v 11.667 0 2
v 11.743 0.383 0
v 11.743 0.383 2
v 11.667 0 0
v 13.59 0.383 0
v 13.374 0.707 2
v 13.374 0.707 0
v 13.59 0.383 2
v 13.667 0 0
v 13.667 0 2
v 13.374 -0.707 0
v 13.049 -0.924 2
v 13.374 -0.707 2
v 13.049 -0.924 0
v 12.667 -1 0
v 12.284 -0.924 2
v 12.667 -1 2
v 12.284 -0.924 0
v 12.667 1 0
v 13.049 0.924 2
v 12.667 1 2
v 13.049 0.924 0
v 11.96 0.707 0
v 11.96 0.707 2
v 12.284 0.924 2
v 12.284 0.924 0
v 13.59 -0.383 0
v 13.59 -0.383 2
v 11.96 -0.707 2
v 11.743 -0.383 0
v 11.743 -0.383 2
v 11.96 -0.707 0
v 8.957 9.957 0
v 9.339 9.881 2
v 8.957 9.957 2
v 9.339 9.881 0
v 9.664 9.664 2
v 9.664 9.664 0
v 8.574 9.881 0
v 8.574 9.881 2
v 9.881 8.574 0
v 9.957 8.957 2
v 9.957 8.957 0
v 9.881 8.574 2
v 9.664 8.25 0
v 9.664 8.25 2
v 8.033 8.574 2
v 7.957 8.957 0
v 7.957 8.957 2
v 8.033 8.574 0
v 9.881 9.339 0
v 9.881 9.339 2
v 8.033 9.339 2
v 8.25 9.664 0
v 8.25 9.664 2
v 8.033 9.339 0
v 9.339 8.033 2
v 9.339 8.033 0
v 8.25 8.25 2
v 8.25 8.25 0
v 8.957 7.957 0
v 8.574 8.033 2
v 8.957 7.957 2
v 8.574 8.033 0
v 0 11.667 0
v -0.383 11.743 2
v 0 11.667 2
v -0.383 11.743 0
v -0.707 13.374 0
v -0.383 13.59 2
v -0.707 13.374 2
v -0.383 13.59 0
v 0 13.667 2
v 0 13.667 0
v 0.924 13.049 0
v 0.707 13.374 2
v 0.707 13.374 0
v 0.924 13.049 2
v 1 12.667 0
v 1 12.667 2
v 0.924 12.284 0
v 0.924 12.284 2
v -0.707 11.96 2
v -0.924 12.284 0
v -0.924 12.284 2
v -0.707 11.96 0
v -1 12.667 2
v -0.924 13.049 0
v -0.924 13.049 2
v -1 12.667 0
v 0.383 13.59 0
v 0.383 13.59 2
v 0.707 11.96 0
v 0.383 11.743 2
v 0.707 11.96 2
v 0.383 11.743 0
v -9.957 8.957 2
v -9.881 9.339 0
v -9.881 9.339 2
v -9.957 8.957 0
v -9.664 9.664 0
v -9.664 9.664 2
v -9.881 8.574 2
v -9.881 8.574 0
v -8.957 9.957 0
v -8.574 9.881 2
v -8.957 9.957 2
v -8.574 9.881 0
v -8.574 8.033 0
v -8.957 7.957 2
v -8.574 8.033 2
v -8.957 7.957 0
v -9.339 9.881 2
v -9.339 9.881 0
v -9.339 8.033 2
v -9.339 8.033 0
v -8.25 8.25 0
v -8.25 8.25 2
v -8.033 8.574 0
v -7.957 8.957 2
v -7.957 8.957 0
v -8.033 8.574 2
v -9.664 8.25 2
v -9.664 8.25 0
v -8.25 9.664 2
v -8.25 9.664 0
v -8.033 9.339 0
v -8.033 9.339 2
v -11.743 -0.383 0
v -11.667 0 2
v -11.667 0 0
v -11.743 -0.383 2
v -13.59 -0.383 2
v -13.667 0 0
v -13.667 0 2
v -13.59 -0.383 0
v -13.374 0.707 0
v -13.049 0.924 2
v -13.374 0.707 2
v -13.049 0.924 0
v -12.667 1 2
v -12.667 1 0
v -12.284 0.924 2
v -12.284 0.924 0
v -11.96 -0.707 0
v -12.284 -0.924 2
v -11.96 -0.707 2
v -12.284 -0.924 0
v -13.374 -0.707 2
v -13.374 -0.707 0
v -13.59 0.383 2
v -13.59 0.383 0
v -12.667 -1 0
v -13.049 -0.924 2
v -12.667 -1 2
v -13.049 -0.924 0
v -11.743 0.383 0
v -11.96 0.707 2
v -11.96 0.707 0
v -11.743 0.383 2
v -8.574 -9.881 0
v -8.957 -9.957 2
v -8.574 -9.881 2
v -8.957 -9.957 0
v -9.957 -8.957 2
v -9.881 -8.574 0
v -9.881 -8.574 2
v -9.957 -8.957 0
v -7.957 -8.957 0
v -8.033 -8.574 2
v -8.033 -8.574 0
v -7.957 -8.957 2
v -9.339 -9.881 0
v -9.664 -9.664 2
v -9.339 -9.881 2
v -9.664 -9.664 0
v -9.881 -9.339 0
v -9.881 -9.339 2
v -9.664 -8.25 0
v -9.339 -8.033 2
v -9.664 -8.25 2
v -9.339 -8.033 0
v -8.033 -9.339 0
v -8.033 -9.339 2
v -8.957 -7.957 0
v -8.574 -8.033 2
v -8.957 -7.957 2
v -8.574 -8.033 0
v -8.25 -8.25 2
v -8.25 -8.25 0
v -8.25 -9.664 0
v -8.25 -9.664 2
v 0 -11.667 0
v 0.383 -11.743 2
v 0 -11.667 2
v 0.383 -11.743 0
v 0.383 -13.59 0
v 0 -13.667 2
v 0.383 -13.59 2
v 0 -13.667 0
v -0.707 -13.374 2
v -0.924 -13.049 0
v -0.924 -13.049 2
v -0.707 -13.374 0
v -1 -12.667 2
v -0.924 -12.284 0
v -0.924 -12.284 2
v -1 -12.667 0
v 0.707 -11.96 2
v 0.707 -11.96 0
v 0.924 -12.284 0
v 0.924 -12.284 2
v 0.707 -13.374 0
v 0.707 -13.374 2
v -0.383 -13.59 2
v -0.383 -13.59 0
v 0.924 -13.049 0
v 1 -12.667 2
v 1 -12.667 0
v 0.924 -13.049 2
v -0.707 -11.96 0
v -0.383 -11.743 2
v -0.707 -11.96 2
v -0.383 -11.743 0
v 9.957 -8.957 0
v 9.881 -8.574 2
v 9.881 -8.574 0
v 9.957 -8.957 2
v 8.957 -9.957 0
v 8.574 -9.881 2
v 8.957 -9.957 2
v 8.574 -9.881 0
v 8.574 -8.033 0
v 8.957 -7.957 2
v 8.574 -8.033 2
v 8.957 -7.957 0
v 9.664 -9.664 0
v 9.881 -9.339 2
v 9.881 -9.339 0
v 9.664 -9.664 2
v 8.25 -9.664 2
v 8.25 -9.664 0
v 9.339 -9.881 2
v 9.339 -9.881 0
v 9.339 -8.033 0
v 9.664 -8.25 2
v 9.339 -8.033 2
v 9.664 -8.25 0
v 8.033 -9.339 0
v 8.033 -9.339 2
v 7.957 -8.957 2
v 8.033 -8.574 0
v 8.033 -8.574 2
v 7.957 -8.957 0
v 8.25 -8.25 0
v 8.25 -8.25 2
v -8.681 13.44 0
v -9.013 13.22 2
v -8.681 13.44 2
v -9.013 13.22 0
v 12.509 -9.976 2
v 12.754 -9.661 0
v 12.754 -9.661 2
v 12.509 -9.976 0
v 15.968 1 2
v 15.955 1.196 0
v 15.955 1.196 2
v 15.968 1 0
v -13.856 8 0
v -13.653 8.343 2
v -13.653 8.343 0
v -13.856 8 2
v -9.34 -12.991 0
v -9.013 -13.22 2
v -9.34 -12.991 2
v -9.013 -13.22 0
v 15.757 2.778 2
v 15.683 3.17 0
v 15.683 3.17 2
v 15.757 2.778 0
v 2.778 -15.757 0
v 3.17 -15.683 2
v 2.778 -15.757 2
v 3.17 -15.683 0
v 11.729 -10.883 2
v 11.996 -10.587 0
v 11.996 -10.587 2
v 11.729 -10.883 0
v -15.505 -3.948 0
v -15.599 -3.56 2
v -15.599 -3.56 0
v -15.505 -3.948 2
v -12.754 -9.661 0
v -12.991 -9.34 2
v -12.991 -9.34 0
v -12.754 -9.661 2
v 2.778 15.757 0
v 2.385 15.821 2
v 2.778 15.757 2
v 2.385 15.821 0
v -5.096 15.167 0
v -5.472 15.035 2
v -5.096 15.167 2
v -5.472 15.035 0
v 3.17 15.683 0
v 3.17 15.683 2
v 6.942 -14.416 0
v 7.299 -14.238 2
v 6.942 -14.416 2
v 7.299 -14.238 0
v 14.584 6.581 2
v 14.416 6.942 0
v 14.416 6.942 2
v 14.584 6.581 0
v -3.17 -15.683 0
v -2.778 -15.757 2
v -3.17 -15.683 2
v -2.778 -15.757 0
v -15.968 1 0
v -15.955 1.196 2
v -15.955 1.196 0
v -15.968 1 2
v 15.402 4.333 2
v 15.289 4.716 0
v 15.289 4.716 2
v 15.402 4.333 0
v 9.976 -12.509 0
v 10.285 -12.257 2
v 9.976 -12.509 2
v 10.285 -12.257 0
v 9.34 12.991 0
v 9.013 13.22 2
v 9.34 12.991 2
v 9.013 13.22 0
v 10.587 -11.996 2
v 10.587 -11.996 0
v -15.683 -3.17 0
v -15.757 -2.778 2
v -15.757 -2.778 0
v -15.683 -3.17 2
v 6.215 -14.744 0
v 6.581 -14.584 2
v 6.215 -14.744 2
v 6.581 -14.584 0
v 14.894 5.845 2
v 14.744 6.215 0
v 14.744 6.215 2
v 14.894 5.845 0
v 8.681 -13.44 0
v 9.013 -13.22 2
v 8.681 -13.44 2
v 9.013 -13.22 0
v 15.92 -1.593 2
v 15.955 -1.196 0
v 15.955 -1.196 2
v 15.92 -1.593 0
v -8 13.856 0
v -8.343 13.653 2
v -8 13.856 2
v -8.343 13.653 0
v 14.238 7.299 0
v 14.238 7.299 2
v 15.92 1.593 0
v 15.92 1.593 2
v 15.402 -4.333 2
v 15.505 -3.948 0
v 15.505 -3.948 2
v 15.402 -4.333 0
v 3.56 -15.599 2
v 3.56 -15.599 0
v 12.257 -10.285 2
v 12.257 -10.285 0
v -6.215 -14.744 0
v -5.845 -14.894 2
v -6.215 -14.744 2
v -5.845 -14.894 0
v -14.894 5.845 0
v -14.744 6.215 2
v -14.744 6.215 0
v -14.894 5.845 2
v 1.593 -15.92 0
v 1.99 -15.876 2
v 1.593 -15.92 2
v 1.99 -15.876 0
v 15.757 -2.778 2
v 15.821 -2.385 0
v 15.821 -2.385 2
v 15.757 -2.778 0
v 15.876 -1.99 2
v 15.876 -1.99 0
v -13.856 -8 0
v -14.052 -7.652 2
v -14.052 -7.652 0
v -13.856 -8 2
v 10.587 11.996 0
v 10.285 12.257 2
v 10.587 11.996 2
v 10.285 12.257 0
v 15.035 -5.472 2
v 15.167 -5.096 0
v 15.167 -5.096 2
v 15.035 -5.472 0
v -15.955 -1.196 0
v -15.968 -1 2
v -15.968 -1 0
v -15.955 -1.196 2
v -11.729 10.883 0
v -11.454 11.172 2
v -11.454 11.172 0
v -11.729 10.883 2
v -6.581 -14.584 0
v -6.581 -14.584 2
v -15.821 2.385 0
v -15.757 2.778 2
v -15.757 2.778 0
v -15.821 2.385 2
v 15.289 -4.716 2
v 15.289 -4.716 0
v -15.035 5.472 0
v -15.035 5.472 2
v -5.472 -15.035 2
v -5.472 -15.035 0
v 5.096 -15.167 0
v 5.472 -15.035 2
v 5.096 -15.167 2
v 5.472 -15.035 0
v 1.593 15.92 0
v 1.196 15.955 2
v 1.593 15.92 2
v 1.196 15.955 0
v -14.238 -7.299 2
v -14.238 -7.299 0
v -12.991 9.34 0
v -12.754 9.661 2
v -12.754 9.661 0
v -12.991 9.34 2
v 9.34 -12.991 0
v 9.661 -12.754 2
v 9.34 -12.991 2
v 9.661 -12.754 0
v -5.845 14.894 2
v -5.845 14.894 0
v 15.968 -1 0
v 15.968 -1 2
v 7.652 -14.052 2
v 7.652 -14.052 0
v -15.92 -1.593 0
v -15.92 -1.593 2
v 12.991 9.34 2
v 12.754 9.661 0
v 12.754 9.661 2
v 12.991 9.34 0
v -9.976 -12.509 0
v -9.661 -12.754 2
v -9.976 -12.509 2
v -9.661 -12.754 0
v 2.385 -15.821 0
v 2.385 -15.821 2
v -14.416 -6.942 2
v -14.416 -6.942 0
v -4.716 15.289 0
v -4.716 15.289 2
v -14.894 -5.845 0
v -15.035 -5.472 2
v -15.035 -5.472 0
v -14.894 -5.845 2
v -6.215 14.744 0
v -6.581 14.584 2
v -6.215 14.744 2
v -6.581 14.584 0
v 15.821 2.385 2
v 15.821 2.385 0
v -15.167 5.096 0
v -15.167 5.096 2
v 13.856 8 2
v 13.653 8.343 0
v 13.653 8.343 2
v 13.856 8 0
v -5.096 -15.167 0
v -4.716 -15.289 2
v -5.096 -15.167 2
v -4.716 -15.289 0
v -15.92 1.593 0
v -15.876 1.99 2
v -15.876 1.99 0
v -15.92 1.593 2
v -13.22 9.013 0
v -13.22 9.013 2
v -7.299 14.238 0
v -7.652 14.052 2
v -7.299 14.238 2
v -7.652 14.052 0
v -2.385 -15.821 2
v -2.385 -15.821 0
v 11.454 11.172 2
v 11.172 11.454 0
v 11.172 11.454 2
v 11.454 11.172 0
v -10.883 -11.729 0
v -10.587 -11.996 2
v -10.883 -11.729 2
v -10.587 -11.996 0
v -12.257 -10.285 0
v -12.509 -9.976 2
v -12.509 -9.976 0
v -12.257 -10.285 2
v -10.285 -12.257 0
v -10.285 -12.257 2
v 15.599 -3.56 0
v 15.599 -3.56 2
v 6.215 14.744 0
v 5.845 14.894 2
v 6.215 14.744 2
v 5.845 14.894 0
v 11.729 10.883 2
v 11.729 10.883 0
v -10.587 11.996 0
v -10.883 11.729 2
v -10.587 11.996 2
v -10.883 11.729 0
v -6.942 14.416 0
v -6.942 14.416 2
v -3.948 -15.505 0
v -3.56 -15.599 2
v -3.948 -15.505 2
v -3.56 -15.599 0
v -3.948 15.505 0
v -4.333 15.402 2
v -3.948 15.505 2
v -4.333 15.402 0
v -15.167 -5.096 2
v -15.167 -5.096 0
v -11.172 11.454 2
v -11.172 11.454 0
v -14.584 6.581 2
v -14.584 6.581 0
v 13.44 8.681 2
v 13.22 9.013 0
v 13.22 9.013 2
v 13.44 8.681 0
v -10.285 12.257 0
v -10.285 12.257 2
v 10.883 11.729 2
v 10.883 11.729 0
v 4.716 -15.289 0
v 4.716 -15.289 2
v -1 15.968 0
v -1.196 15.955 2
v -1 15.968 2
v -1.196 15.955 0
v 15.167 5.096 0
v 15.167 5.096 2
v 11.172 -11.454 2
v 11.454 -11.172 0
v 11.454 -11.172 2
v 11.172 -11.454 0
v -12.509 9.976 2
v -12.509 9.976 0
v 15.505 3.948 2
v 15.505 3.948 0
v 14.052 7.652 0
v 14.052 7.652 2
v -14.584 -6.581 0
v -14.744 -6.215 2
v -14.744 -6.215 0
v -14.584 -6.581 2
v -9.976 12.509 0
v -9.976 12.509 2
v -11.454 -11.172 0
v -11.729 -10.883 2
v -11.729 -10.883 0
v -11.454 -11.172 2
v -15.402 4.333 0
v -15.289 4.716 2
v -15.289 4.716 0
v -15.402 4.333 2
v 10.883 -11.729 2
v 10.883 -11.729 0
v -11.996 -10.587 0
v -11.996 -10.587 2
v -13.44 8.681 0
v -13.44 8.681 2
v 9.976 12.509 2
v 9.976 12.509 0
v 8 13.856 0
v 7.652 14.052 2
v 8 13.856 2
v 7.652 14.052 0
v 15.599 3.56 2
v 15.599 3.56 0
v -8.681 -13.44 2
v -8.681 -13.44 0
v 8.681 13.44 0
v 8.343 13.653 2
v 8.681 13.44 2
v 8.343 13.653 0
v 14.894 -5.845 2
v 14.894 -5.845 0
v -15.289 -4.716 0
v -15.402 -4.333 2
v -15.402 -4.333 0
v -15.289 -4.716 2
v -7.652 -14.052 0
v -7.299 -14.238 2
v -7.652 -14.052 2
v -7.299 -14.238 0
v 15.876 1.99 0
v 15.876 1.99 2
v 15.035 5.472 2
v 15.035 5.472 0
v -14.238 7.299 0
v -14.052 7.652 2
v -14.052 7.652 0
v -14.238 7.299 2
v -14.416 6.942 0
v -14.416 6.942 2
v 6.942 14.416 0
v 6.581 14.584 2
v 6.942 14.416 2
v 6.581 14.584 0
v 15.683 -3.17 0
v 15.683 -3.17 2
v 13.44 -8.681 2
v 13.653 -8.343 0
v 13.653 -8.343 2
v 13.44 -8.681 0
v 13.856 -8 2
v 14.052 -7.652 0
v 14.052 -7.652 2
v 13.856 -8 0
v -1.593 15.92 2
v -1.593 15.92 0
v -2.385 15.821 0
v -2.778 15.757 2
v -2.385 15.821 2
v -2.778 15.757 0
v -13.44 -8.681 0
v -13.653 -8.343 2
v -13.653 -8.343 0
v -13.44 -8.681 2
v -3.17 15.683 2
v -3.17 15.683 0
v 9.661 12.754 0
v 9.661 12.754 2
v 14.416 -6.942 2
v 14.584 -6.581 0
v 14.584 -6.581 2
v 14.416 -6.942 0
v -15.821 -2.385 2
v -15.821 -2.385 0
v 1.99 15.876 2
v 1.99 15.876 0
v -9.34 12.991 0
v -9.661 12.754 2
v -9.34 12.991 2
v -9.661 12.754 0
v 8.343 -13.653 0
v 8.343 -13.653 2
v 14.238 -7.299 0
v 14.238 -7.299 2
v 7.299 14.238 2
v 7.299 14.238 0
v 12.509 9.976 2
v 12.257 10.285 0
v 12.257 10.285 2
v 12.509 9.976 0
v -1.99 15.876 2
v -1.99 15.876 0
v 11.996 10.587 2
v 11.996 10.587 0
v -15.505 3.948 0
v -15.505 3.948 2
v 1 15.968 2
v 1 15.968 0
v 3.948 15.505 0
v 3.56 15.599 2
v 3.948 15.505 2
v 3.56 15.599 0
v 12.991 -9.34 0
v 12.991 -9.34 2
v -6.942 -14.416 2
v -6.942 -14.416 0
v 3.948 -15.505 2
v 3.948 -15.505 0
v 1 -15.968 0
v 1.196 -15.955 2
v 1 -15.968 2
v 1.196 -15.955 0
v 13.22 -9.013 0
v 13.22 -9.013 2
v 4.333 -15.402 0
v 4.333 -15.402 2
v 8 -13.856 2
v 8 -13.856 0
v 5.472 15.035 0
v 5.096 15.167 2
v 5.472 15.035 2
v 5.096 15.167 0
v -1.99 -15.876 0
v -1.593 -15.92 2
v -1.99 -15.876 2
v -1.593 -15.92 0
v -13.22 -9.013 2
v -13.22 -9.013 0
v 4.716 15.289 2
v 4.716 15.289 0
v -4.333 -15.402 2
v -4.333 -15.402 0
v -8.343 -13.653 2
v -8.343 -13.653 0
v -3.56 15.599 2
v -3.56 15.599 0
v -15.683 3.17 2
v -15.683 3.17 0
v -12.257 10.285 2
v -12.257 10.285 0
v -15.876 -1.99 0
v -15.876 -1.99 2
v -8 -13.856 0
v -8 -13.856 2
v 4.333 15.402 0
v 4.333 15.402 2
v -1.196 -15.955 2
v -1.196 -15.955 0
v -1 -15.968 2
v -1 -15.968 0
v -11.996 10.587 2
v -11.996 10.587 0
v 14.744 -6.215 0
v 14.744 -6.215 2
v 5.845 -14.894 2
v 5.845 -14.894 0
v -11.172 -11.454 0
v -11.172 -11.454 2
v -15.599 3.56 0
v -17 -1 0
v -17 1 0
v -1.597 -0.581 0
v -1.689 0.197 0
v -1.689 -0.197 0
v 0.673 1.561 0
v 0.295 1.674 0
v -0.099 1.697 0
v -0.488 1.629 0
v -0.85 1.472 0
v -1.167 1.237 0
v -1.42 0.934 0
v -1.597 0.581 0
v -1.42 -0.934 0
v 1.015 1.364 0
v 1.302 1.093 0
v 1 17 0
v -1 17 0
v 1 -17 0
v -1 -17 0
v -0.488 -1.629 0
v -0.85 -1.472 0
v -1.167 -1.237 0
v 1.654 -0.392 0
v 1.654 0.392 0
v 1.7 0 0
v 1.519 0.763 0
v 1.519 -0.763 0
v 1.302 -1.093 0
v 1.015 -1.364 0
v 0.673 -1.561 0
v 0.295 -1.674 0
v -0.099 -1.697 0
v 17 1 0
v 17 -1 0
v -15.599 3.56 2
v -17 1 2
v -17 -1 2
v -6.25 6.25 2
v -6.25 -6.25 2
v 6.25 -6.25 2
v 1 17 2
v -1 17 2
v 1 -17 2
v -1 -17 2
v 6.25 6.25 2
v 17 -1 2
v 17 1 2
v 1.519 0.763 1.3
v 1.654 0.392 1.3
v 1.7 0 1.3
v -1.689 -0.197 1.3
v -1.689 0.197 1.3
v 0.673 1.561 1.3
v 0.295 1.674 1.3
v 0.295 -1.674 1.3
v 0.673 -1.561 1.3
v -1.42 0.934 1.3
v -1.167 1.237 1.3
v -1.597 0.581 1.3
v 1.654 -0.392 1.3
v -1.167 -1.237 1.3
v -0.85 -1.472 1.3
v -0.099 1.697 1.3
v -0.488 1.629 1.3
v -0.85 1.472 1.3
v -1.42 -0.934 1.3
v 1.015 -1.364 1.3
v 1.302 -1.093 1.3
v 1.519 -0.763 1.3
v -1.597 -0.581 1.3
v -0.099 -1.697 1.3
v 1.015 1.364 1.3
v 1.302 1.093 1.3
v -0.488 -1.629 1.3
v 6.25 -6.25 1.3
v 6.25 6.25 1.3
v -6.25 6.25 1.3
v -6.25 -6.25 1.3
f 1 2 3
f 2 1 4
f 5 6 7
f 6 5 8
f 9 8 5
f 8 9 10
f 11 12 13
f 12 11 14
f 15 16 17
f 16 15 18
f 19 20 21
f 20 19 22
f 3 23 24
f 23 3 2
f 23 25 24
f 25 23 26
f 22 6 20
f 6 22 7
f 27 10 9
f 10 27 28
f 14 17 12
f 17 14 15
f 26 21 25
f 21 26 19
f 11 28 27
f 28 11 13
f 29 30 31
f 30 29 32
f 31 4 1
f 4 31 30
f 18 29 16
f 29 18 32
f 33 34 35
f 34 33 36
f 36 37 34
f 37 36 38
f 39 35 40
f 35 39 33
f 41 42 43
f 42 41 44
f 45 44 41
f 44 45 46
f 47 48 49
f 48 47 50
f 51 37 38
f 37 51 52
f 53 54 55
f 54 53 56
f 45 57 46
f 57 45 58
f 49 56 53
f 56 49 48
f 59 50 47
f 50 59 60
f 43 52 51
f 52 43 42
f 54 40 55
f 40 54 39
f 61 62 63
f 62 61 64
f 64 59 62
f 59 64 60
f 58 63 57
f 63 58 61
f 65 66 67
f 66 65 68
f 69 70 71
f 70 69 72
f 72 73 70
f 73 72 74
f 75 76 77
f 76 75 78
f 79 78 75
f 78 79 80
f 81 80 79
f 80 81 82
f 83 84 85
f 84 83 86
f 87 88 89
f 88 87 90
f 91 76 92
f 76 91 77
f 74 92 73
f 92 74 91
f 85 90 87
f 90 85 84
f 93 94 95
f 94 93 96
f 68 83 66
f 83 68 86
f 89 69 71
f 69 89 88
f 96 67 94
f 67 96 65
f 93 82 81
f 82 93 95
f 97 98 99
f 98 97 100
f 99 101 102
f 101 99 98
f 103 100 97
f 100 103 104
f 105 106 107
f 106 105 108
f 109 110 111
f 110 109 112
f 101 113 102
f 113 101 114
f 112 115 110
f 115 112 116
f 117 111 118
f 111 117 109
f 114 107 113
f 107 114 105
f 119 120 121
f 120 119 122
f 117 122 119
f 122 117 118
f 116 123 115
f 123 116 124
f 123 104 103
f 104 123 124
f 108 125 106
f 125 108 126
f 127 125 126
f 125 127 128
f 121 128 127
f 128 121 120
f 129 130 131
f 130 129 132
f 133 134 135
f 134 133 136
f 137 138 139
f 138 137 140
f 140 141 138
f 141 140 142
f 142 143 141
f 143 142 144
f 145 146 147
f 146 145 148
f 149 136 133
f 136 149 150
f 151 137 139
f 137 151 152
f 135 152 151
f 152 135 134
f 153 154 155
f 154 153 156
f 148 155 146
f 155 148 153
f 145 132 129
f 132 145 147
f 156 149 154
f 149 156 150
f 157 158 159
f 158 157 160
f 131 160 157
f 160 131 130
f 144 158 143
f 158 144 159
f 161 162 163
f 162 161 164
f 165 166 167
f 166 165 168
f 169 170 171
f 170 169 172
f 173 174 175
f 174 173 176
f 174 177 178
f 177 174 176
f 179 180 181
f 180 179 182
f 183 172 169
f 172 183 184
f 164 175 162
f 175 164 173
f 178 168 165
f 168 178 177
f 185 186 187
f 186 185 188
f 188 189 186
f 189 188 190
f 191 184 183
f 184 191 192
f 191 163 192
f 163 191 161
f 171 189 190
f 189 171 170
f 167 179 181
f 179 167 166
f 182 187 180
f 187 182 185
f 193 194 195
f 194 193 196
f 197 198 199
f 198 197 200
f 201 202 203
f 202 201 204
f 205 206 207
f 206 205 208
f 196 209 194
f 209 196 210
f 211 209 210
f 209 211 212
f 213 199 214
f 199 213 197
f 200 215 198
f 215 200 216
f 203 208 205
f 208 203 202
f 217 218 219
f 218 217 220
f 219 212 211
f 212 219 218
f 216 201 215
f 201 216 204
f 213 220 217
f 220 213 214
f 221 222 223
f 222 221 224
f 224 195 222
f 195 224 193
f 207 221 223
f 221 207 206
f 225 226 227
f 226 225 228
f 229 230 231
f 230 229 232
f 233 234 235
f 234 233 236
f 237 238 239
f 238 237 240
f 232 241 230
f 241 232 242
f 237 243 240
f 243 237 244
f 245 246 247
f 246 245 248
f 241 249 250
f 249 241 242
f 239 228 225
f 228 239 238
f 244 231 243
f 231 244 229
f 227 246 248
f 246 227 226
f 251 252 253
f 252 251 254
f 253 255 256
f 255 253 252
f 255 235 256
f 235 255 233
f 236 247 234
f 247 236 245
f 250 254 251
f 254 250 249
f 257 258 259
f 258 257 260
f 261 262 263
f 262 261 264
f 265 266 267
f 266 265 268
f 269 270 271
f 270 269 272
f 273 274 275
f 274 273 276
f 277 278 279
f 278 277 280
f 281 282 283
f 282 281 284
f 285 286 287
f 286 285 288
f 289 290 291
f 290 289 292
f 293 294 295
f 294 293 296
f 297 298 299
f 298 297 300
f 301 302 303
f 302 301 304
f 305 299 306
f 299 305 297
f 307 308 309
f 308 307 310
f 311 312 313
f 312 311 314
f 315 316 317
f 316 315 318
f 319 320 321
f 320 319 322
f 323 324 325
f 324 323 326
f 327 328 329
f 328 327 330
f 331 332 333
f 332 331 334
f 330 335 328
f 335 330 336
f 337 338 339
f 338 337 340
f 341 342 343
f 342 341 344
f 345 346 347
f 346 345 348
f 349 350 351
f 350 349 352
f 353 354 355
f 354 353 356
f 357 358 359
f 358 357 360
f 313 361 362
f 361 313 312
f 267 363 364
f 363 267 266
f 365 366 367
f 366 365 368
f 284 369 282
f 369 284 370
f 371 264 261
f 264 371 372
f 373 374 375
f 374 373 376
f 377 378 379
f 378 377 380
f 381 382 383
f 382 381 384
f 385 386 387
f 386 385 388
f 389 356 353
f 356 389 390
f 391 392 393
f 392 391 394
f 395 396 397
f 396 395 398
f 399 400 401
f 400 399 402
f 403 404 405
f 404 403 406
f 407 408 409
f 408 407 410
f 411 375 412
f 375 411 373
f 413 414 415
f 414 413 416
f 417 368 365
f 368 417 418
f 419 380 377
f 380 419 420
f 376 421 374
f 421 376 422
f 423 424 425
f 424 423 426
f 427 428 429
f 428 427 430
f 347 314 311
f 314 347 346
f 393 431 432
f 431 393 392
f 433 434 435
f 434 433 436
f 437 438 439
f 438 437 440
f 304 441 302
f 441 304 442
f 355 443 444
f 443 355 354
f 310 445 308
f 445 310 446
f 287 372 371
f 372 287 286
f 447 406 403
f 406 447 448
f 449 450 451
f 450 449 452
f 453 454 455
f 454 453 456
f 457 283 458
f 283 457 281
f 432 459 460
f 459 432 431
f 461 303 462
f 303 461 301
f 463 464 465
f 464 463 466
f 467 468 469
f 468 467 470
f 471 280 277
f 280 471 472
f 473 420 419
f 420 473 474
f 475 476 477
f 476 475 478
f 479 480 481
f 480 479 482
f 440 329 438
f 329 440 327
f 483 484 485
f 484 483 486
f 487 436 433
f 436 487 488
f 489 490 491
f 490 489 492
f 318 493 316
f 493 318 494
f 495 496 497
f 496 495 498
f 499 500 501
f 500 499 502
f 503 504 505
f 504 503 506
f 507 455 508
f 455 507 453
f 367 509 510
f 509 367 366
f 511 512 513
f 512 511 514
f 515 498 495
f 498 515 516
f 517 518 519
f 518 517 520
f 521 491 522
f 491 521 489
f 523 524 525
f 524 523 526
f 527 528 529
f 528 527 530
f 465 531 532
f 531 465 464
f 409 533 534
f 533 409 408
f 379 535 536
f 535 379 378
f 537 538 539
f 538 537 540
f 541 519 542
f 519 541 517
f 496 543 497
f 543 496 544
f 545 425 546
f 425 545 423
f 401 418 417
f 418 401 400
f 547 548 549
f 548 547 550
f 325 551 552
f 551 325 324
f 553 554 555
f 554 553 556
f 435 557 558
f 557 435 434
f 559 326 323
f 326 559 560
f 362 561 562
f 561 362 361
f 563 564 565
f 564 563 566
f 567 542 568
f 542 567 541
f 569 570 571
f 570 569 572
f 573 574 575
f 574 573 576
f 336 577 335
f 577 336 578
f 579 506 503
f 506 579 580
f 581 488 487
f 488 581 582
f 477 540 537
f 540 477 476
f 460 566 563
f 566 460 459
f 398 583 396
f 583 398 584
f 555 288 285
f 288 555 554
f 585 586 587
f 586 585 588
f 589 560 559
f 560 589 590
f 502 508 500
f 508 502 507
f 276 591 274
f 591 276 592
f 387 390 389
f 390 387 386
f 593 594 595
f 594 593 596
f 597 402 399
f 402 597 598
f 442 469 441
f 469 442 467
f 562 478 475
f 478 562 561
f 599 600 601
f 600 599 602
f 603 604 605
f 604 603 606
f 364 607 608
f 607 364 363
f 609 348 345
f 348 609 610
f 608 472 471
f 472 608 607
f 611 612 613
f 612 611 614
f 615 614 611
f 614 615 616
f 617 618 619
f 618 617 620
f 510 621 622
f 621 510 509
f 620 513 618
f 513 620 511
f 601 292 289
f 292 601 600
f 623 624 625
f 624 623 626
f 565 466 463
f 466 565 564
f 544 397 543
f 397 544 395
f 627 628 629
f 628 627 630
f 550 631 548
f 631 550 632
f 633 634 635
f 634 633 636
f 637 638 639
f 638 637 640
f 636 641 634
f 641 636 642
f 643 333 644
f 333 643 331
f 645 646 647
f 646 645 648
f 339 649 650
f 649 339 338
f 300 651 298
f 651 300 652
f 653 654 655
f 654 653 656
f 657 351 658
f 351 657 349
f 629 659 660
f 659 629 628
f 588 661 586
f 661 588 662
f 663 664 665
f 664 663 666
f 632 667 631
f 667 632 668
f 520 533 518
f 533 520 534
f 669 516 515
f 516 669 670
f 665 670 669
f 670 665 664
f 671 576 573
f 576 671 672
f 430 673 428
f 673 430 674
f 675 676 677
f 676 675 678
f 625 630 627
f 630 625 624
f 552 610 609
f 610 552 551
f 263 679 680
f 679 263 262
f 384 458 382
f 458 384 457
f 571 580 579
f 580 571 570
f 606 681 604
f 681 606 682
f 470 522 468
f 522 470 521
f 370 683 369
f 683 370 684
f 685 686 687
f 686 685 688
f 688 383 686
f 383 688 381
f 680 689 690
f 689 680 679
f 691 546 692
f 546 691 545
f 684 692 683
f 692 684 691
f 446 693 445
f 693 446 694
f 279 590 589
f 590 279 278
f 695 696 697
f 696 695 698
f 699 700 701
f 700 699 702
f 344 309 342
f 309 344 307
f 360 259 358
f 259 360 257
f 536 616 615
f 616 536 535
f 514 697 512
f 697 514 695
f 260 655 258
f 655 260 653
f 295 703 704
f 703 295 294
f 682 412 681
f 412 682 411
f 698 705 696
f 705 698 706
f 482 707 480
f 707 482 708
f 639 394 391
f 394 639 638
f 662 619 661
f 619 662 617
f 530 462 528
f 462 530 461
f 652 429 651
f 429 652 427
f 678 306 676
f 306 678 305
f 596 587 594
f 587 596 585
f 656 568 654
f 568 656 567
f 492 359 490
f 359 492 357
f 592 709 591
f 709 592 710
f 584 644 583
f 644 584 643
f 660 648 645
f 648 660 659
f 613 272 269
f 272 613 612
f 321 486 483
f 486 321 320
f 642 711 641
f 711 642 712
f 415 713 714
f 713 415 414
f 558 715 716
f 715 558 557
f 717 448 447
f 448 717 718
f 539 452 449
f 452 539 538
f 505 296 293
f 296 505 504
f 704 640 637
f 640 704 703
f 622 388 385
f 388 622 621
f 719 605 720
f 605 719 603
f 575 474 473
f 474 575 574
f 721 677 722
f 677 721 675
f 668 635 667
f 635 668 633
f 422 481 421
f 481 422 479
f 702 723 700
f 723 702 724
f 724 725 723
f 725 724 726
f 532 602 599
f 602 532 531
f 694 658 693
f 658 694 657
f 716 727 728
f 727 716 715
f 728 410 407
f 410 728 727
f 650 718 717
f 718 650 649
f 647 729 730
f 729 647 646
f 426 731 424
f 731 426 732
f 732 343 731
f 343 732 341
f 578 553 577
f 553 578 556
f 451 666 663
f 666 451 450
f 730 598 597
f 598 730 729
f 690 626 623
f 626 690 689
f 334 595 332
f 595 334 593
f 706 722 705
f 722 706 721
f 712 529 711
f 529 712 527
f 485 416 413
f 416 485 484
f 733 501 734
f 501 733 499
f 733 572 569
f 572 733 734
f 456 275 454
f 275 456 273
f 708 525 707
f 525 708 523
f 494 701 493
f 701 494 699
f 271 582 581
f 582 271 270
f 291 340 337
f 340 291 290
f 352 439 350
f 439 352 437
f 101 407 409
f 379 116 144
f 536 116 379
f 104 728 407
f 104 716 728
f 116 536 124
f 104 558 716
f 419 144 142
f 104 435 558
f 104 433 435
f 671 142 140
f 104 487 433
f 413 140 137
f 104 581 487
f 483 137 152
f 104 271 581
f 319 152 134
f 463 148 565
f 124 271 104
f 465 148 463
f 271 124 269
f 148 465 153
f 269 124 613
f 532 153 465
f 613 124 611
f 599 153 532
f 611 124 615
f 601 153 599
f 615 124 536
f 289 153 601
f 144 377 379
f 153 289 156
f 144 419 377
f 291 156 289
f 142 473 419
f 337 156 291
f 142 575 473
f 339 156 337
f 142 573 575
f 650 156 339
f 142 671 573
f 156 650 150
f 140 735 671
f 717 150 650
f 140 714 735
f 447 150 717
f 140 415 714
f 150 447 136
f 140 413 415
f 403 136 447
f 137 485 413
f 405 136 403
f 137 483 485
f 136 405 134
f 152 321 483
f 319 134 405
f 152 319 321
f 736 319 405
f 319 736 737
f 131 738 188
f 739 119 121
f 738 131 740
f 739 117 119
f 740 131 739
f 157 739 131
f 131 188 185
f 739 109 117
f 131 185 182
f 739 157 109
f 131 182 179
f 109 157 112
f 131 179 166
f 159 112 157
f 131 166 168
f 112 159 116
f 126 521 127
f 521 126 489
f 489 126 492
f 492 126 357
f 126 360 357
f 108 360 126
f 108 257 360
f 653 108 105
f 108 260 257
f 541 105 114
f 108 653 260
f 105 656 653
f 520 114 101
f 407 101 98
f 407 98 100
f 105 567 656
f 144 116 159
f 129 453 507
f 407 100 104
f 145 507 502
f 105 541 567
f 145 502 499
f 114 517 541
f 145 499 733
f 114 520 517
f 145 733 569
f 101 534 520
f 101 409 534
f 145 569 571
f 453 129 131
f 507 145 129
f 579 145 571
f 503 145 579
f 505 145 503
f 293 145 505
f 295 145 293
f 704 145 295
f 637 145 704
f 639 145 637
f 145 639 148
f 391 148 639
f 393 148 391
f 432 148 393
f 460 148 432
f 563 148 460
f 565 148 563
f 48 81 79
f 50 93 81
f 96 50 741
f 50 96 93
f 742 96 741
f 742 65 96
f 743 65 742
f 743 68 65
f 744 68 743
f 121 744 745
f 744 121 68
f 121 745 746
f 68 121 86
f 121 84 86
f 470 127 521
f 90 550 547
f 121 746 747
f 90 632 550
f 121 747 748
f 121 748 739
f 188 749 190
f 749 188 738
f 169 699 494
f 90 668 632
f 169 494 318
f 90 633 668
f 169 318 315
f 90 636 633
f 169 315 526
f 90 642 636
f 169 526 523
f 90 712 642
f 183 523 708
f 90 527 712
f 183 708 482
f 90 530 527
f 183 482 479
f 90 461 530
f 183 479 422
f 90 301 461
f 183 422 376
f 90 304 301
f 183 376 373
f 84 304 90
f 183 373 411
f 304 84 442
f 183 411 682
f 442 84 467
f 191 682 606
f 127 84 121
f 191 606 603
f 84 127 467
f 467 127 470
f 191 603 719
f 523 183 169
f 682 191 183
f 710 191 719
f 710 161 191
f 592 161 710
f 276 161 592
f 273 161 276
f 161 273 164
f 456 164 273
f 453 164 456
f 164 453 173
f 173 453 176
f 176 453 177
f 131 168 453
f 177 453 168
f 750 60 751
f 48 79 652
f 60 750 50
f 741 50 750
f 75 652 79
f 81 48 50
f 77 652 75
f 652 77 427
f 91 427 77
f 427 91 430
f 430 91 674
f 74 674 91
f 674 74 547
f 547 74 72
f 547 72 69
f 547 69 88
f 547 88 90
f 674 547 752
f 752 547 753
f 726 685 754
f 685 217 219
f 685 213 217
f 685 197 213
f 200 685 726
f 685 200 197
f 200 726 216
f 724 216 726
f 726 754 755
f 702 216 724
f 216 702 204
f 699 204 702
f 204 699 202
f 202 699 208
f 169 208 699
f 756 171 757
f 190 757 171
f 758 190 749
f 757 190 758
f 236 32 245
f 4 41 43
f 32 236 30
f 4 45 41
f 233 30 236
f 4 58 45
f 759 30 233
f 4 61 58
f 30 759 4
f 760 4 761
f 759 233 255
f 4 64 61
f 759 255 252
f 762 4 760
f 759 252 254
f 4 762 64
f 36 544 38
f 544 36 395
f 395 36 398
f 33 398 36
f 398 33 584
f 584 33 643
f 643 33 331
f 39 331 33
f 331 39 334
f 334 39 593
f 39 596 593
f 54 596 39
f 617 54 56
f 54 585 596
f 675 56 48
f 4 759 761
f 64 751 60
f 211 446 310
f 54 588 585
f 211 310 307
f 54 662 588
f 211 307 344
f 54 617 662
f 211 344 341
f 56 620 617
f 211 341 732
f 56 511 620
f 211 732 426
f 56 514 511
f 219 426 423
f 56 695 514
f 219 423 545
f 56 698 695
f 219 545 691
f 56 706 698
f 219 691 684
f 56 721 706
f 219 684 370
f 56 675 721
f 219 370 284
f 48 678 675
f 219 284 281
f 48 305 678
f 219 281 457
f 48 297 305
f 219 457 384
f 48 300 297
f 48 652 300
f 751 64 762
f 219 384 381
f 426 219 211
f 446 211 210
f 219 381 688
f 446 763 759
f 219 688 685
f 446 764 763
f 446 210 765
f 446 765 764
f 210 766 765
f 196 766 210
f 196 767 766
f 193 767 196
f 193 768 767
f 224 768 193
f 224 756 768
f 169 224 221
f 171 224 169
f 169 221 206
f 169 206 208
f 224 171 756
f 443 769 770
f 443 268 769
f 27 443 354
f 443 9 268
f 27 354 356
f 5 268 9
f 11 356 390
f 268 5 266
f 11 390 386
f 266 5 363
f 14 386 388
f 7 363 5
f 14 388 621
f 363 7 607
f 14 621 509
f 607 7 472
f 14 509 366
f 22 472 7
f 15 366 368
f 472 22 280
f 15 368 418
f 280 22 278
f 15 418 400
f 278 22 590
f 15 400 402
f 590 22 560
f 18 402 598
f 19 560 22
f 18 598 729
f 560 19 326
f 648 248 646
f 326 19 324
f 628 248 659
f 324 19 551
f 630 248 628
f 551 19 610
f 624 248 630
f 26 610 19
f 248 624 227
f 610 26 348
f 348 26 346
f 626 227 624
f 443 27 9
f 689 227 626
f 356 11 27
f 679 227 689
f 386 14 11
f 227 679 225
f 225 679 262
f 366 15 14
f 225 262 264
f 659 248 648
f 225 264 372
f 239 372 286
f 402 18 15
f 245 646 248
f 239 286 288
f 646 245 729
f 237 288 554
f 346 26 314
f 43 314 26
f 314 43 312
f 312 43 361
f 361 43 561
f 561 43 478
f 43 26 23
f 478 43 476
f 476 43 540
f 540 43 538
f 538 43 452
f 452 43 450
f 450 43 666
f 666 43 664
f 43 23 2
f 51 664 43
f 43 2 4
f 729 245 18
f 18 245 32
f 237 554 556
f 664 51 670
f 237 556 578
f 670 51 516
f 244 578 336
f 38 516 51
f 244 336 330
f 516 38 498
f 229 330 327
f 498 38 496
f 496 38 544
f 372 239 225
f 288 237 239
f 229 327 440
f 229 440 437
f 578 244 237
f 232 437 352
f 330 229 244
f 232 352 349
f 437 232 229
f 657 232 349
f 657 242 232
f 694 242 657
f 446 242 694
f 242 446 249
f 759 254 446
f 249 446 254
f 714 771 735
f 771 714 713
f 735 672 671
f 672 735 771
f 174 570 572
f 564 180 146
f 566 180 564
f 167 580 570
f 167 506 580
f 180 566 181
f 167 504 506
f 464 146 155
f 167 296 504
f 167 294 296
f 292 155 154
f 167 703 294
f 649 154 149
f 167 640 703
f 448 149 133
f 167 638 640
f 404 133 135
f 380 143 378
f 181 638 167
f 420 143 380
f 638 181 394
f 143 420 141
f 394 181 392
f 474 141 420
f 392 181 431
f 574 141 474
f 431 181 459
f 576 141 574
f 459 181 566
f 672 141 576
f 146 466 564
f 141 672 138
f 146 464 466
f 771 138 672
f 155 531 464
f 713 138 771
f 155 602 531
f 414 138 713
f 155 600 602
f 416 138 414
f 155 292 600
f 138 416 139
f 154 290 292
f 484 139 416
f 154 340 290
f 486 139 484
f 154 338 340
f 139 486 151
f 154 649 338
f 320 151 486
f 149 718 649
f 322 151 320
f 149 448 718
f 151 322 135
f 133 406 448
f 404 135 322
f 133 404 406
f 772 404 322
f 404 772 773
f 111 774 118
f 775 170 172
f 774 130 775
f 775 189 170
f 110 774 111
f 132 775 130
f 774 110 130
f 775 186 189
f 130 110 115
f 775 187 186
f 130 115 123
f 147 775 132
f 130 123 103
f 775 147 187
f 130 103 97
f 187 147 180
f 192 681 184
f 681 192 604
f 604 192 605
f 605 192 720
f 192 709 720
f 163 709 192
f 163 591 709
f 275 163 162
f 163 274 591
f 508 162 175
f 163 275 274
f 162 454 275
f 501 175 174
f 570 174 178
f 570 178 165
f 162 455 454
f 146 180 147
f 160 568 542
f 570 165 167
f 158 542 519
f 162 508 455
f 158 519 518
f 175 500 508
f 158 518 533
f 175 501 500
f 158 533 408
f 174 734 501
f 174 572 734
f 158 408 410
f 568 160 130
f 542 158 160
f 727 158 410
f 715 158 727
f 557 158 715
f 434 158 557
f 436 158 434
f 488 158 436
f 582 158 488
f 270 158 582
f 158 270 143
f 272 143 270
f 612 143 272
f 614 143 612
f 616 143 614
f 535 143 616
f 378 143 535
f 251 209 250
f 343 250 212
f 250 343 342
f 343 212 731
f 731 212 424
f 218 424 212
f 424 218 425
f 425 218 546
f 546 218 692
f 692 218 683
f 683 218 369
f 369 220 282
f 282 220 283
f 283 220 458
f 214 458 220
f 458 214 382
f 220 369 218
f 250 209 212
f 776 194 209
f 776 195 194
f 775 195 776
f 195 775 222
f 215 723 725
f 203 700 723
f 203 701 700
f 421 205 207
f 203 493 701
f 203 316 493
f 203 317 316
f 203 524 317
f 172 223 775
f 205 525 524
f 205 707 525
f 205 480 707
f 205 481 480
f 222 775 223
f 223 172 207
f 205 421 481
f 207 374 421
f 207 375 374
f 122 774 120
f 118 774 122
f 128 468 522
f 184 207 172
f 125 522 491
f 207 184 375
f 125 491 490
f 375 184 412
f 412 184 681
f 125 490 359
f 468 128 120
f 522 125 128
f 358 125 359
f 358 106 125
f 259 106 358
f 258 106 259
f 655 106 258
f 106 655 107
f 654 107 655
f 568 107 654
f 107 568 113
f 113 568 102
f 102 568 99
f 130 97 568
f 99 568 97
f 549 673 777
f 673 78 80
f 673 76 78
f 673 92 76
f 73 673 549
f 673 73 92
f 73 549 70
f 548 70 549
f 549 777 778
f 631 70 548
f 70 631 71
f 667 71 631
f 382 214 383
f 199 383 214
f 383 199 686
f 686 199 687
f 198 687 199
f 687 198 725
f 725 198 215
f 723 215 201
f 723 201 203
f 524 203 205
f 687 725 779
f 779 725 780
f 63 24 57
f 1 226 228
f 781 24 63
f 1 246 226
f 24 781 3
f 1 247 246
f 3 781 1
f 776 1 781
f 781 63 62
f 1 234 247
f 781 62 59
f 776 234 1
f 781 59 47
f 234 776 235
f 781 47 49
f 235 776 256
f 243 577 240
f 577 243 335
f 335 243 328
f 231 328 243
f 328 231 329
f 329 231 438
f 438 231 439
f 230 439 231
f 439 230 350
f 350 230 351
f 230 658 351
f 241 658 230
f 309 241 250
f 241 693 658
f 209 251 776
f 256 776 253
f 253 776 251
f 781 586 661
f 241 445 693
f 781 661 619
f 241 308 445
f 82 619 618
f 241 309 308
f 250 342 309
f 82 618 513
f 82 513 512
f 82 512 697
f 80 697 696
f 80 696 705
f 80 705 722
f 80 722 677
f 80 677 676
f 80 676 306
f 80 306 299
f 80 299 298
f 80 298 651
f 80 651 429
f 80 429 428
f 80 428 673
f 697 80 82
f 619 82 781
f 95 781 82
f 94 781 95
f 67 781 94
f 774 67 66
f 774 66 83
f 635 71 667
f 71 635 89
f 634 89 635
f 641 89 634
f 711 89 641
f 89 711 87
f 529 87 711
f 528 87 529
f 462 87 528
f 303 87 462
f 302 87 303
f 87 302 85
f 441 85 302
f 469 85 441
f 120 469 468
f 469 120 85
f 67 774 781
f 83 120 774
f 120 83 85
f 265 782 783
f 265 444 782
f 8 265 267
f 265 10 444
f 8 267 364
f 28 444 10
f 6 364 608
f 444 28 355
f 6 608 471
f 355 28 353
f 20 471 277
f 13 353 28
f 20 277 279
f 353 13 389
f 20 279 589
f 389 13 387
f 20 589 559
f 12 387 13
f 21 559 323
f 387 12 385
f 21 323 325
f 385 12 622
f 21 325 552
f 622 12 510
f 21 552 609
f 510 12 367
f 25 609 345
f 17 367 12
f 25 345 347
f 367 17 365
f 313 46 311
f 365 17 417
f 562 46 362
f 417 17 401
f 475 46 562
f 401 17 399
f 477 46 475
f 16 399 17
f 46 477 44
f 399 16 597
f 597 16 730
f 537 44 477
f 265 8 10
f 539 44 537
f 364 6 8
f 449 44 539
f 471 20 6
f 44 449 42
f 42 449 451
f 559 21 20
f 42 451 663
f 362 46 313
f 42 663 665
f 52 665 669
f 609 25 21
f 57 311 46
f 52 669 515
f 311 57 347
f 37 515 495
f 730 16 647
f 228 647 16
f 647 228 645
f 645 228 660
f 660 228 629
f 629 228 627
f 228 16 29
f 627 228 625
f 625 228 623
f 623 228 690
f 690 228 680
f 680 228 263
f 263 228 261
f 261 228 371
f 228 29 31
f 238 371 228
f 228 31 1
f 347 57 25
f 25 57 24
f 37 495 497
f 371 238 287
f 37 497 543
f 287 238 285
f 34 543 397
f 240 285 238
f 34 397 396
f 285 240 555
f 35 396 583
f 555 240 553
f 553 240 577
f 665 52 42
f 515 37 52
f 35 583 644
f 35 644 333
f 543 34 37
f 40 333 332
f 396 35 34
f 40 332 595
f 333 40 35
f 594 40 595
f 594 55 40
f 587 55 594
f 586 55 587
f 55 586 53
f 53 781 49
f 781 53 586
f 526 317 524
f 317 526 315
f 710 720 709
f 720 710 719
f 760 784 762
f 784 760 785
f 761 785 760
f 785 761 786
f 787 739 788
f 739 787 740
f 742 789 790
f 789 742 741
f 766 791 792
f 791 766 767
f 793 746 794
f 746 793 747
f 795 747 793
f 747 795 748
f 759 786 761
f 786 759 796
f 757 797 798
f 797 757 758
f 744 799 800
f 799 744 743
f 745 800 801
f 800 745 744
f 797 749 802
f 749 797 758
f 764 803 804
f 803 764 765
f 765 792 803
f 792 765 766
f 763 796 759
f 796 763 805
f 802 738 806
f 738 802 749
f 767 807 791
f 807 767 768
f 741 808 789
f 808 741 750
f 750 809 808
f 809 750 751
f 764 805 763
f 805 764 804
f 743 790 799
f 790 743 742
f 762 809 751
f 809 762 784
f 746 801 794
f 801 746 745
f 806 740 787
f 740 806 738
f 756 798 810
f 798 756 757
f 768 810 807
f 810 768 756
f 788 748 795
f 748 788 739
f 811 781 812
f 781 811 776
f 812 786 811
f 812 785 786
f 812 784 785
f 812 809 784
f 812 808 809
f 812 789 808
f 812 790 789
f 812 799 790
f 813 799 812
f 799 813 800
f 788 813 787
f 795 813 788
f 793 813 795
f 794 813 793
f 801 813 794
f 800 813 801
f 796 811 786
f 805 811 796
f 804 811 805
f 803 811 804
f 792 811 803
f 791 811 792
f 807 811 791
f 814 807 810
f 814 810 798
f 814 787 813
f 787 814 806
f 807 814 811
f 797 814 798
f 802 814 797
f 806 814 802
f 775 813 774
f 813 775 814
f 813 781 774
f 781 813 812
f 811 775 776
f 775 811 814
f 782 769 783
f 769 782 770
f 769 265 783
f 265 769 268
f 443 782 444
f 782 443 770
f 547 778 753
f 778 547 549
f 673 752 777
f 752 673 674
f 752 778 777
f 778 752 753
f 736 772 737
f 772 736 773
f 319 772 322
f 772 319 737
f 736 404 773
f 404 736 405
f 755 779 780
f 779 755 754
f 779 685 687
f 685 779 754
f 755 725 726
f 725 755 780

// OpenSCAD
include <lib/tentacle.scad>


joint(joint_radius=16, last_joint=false);
